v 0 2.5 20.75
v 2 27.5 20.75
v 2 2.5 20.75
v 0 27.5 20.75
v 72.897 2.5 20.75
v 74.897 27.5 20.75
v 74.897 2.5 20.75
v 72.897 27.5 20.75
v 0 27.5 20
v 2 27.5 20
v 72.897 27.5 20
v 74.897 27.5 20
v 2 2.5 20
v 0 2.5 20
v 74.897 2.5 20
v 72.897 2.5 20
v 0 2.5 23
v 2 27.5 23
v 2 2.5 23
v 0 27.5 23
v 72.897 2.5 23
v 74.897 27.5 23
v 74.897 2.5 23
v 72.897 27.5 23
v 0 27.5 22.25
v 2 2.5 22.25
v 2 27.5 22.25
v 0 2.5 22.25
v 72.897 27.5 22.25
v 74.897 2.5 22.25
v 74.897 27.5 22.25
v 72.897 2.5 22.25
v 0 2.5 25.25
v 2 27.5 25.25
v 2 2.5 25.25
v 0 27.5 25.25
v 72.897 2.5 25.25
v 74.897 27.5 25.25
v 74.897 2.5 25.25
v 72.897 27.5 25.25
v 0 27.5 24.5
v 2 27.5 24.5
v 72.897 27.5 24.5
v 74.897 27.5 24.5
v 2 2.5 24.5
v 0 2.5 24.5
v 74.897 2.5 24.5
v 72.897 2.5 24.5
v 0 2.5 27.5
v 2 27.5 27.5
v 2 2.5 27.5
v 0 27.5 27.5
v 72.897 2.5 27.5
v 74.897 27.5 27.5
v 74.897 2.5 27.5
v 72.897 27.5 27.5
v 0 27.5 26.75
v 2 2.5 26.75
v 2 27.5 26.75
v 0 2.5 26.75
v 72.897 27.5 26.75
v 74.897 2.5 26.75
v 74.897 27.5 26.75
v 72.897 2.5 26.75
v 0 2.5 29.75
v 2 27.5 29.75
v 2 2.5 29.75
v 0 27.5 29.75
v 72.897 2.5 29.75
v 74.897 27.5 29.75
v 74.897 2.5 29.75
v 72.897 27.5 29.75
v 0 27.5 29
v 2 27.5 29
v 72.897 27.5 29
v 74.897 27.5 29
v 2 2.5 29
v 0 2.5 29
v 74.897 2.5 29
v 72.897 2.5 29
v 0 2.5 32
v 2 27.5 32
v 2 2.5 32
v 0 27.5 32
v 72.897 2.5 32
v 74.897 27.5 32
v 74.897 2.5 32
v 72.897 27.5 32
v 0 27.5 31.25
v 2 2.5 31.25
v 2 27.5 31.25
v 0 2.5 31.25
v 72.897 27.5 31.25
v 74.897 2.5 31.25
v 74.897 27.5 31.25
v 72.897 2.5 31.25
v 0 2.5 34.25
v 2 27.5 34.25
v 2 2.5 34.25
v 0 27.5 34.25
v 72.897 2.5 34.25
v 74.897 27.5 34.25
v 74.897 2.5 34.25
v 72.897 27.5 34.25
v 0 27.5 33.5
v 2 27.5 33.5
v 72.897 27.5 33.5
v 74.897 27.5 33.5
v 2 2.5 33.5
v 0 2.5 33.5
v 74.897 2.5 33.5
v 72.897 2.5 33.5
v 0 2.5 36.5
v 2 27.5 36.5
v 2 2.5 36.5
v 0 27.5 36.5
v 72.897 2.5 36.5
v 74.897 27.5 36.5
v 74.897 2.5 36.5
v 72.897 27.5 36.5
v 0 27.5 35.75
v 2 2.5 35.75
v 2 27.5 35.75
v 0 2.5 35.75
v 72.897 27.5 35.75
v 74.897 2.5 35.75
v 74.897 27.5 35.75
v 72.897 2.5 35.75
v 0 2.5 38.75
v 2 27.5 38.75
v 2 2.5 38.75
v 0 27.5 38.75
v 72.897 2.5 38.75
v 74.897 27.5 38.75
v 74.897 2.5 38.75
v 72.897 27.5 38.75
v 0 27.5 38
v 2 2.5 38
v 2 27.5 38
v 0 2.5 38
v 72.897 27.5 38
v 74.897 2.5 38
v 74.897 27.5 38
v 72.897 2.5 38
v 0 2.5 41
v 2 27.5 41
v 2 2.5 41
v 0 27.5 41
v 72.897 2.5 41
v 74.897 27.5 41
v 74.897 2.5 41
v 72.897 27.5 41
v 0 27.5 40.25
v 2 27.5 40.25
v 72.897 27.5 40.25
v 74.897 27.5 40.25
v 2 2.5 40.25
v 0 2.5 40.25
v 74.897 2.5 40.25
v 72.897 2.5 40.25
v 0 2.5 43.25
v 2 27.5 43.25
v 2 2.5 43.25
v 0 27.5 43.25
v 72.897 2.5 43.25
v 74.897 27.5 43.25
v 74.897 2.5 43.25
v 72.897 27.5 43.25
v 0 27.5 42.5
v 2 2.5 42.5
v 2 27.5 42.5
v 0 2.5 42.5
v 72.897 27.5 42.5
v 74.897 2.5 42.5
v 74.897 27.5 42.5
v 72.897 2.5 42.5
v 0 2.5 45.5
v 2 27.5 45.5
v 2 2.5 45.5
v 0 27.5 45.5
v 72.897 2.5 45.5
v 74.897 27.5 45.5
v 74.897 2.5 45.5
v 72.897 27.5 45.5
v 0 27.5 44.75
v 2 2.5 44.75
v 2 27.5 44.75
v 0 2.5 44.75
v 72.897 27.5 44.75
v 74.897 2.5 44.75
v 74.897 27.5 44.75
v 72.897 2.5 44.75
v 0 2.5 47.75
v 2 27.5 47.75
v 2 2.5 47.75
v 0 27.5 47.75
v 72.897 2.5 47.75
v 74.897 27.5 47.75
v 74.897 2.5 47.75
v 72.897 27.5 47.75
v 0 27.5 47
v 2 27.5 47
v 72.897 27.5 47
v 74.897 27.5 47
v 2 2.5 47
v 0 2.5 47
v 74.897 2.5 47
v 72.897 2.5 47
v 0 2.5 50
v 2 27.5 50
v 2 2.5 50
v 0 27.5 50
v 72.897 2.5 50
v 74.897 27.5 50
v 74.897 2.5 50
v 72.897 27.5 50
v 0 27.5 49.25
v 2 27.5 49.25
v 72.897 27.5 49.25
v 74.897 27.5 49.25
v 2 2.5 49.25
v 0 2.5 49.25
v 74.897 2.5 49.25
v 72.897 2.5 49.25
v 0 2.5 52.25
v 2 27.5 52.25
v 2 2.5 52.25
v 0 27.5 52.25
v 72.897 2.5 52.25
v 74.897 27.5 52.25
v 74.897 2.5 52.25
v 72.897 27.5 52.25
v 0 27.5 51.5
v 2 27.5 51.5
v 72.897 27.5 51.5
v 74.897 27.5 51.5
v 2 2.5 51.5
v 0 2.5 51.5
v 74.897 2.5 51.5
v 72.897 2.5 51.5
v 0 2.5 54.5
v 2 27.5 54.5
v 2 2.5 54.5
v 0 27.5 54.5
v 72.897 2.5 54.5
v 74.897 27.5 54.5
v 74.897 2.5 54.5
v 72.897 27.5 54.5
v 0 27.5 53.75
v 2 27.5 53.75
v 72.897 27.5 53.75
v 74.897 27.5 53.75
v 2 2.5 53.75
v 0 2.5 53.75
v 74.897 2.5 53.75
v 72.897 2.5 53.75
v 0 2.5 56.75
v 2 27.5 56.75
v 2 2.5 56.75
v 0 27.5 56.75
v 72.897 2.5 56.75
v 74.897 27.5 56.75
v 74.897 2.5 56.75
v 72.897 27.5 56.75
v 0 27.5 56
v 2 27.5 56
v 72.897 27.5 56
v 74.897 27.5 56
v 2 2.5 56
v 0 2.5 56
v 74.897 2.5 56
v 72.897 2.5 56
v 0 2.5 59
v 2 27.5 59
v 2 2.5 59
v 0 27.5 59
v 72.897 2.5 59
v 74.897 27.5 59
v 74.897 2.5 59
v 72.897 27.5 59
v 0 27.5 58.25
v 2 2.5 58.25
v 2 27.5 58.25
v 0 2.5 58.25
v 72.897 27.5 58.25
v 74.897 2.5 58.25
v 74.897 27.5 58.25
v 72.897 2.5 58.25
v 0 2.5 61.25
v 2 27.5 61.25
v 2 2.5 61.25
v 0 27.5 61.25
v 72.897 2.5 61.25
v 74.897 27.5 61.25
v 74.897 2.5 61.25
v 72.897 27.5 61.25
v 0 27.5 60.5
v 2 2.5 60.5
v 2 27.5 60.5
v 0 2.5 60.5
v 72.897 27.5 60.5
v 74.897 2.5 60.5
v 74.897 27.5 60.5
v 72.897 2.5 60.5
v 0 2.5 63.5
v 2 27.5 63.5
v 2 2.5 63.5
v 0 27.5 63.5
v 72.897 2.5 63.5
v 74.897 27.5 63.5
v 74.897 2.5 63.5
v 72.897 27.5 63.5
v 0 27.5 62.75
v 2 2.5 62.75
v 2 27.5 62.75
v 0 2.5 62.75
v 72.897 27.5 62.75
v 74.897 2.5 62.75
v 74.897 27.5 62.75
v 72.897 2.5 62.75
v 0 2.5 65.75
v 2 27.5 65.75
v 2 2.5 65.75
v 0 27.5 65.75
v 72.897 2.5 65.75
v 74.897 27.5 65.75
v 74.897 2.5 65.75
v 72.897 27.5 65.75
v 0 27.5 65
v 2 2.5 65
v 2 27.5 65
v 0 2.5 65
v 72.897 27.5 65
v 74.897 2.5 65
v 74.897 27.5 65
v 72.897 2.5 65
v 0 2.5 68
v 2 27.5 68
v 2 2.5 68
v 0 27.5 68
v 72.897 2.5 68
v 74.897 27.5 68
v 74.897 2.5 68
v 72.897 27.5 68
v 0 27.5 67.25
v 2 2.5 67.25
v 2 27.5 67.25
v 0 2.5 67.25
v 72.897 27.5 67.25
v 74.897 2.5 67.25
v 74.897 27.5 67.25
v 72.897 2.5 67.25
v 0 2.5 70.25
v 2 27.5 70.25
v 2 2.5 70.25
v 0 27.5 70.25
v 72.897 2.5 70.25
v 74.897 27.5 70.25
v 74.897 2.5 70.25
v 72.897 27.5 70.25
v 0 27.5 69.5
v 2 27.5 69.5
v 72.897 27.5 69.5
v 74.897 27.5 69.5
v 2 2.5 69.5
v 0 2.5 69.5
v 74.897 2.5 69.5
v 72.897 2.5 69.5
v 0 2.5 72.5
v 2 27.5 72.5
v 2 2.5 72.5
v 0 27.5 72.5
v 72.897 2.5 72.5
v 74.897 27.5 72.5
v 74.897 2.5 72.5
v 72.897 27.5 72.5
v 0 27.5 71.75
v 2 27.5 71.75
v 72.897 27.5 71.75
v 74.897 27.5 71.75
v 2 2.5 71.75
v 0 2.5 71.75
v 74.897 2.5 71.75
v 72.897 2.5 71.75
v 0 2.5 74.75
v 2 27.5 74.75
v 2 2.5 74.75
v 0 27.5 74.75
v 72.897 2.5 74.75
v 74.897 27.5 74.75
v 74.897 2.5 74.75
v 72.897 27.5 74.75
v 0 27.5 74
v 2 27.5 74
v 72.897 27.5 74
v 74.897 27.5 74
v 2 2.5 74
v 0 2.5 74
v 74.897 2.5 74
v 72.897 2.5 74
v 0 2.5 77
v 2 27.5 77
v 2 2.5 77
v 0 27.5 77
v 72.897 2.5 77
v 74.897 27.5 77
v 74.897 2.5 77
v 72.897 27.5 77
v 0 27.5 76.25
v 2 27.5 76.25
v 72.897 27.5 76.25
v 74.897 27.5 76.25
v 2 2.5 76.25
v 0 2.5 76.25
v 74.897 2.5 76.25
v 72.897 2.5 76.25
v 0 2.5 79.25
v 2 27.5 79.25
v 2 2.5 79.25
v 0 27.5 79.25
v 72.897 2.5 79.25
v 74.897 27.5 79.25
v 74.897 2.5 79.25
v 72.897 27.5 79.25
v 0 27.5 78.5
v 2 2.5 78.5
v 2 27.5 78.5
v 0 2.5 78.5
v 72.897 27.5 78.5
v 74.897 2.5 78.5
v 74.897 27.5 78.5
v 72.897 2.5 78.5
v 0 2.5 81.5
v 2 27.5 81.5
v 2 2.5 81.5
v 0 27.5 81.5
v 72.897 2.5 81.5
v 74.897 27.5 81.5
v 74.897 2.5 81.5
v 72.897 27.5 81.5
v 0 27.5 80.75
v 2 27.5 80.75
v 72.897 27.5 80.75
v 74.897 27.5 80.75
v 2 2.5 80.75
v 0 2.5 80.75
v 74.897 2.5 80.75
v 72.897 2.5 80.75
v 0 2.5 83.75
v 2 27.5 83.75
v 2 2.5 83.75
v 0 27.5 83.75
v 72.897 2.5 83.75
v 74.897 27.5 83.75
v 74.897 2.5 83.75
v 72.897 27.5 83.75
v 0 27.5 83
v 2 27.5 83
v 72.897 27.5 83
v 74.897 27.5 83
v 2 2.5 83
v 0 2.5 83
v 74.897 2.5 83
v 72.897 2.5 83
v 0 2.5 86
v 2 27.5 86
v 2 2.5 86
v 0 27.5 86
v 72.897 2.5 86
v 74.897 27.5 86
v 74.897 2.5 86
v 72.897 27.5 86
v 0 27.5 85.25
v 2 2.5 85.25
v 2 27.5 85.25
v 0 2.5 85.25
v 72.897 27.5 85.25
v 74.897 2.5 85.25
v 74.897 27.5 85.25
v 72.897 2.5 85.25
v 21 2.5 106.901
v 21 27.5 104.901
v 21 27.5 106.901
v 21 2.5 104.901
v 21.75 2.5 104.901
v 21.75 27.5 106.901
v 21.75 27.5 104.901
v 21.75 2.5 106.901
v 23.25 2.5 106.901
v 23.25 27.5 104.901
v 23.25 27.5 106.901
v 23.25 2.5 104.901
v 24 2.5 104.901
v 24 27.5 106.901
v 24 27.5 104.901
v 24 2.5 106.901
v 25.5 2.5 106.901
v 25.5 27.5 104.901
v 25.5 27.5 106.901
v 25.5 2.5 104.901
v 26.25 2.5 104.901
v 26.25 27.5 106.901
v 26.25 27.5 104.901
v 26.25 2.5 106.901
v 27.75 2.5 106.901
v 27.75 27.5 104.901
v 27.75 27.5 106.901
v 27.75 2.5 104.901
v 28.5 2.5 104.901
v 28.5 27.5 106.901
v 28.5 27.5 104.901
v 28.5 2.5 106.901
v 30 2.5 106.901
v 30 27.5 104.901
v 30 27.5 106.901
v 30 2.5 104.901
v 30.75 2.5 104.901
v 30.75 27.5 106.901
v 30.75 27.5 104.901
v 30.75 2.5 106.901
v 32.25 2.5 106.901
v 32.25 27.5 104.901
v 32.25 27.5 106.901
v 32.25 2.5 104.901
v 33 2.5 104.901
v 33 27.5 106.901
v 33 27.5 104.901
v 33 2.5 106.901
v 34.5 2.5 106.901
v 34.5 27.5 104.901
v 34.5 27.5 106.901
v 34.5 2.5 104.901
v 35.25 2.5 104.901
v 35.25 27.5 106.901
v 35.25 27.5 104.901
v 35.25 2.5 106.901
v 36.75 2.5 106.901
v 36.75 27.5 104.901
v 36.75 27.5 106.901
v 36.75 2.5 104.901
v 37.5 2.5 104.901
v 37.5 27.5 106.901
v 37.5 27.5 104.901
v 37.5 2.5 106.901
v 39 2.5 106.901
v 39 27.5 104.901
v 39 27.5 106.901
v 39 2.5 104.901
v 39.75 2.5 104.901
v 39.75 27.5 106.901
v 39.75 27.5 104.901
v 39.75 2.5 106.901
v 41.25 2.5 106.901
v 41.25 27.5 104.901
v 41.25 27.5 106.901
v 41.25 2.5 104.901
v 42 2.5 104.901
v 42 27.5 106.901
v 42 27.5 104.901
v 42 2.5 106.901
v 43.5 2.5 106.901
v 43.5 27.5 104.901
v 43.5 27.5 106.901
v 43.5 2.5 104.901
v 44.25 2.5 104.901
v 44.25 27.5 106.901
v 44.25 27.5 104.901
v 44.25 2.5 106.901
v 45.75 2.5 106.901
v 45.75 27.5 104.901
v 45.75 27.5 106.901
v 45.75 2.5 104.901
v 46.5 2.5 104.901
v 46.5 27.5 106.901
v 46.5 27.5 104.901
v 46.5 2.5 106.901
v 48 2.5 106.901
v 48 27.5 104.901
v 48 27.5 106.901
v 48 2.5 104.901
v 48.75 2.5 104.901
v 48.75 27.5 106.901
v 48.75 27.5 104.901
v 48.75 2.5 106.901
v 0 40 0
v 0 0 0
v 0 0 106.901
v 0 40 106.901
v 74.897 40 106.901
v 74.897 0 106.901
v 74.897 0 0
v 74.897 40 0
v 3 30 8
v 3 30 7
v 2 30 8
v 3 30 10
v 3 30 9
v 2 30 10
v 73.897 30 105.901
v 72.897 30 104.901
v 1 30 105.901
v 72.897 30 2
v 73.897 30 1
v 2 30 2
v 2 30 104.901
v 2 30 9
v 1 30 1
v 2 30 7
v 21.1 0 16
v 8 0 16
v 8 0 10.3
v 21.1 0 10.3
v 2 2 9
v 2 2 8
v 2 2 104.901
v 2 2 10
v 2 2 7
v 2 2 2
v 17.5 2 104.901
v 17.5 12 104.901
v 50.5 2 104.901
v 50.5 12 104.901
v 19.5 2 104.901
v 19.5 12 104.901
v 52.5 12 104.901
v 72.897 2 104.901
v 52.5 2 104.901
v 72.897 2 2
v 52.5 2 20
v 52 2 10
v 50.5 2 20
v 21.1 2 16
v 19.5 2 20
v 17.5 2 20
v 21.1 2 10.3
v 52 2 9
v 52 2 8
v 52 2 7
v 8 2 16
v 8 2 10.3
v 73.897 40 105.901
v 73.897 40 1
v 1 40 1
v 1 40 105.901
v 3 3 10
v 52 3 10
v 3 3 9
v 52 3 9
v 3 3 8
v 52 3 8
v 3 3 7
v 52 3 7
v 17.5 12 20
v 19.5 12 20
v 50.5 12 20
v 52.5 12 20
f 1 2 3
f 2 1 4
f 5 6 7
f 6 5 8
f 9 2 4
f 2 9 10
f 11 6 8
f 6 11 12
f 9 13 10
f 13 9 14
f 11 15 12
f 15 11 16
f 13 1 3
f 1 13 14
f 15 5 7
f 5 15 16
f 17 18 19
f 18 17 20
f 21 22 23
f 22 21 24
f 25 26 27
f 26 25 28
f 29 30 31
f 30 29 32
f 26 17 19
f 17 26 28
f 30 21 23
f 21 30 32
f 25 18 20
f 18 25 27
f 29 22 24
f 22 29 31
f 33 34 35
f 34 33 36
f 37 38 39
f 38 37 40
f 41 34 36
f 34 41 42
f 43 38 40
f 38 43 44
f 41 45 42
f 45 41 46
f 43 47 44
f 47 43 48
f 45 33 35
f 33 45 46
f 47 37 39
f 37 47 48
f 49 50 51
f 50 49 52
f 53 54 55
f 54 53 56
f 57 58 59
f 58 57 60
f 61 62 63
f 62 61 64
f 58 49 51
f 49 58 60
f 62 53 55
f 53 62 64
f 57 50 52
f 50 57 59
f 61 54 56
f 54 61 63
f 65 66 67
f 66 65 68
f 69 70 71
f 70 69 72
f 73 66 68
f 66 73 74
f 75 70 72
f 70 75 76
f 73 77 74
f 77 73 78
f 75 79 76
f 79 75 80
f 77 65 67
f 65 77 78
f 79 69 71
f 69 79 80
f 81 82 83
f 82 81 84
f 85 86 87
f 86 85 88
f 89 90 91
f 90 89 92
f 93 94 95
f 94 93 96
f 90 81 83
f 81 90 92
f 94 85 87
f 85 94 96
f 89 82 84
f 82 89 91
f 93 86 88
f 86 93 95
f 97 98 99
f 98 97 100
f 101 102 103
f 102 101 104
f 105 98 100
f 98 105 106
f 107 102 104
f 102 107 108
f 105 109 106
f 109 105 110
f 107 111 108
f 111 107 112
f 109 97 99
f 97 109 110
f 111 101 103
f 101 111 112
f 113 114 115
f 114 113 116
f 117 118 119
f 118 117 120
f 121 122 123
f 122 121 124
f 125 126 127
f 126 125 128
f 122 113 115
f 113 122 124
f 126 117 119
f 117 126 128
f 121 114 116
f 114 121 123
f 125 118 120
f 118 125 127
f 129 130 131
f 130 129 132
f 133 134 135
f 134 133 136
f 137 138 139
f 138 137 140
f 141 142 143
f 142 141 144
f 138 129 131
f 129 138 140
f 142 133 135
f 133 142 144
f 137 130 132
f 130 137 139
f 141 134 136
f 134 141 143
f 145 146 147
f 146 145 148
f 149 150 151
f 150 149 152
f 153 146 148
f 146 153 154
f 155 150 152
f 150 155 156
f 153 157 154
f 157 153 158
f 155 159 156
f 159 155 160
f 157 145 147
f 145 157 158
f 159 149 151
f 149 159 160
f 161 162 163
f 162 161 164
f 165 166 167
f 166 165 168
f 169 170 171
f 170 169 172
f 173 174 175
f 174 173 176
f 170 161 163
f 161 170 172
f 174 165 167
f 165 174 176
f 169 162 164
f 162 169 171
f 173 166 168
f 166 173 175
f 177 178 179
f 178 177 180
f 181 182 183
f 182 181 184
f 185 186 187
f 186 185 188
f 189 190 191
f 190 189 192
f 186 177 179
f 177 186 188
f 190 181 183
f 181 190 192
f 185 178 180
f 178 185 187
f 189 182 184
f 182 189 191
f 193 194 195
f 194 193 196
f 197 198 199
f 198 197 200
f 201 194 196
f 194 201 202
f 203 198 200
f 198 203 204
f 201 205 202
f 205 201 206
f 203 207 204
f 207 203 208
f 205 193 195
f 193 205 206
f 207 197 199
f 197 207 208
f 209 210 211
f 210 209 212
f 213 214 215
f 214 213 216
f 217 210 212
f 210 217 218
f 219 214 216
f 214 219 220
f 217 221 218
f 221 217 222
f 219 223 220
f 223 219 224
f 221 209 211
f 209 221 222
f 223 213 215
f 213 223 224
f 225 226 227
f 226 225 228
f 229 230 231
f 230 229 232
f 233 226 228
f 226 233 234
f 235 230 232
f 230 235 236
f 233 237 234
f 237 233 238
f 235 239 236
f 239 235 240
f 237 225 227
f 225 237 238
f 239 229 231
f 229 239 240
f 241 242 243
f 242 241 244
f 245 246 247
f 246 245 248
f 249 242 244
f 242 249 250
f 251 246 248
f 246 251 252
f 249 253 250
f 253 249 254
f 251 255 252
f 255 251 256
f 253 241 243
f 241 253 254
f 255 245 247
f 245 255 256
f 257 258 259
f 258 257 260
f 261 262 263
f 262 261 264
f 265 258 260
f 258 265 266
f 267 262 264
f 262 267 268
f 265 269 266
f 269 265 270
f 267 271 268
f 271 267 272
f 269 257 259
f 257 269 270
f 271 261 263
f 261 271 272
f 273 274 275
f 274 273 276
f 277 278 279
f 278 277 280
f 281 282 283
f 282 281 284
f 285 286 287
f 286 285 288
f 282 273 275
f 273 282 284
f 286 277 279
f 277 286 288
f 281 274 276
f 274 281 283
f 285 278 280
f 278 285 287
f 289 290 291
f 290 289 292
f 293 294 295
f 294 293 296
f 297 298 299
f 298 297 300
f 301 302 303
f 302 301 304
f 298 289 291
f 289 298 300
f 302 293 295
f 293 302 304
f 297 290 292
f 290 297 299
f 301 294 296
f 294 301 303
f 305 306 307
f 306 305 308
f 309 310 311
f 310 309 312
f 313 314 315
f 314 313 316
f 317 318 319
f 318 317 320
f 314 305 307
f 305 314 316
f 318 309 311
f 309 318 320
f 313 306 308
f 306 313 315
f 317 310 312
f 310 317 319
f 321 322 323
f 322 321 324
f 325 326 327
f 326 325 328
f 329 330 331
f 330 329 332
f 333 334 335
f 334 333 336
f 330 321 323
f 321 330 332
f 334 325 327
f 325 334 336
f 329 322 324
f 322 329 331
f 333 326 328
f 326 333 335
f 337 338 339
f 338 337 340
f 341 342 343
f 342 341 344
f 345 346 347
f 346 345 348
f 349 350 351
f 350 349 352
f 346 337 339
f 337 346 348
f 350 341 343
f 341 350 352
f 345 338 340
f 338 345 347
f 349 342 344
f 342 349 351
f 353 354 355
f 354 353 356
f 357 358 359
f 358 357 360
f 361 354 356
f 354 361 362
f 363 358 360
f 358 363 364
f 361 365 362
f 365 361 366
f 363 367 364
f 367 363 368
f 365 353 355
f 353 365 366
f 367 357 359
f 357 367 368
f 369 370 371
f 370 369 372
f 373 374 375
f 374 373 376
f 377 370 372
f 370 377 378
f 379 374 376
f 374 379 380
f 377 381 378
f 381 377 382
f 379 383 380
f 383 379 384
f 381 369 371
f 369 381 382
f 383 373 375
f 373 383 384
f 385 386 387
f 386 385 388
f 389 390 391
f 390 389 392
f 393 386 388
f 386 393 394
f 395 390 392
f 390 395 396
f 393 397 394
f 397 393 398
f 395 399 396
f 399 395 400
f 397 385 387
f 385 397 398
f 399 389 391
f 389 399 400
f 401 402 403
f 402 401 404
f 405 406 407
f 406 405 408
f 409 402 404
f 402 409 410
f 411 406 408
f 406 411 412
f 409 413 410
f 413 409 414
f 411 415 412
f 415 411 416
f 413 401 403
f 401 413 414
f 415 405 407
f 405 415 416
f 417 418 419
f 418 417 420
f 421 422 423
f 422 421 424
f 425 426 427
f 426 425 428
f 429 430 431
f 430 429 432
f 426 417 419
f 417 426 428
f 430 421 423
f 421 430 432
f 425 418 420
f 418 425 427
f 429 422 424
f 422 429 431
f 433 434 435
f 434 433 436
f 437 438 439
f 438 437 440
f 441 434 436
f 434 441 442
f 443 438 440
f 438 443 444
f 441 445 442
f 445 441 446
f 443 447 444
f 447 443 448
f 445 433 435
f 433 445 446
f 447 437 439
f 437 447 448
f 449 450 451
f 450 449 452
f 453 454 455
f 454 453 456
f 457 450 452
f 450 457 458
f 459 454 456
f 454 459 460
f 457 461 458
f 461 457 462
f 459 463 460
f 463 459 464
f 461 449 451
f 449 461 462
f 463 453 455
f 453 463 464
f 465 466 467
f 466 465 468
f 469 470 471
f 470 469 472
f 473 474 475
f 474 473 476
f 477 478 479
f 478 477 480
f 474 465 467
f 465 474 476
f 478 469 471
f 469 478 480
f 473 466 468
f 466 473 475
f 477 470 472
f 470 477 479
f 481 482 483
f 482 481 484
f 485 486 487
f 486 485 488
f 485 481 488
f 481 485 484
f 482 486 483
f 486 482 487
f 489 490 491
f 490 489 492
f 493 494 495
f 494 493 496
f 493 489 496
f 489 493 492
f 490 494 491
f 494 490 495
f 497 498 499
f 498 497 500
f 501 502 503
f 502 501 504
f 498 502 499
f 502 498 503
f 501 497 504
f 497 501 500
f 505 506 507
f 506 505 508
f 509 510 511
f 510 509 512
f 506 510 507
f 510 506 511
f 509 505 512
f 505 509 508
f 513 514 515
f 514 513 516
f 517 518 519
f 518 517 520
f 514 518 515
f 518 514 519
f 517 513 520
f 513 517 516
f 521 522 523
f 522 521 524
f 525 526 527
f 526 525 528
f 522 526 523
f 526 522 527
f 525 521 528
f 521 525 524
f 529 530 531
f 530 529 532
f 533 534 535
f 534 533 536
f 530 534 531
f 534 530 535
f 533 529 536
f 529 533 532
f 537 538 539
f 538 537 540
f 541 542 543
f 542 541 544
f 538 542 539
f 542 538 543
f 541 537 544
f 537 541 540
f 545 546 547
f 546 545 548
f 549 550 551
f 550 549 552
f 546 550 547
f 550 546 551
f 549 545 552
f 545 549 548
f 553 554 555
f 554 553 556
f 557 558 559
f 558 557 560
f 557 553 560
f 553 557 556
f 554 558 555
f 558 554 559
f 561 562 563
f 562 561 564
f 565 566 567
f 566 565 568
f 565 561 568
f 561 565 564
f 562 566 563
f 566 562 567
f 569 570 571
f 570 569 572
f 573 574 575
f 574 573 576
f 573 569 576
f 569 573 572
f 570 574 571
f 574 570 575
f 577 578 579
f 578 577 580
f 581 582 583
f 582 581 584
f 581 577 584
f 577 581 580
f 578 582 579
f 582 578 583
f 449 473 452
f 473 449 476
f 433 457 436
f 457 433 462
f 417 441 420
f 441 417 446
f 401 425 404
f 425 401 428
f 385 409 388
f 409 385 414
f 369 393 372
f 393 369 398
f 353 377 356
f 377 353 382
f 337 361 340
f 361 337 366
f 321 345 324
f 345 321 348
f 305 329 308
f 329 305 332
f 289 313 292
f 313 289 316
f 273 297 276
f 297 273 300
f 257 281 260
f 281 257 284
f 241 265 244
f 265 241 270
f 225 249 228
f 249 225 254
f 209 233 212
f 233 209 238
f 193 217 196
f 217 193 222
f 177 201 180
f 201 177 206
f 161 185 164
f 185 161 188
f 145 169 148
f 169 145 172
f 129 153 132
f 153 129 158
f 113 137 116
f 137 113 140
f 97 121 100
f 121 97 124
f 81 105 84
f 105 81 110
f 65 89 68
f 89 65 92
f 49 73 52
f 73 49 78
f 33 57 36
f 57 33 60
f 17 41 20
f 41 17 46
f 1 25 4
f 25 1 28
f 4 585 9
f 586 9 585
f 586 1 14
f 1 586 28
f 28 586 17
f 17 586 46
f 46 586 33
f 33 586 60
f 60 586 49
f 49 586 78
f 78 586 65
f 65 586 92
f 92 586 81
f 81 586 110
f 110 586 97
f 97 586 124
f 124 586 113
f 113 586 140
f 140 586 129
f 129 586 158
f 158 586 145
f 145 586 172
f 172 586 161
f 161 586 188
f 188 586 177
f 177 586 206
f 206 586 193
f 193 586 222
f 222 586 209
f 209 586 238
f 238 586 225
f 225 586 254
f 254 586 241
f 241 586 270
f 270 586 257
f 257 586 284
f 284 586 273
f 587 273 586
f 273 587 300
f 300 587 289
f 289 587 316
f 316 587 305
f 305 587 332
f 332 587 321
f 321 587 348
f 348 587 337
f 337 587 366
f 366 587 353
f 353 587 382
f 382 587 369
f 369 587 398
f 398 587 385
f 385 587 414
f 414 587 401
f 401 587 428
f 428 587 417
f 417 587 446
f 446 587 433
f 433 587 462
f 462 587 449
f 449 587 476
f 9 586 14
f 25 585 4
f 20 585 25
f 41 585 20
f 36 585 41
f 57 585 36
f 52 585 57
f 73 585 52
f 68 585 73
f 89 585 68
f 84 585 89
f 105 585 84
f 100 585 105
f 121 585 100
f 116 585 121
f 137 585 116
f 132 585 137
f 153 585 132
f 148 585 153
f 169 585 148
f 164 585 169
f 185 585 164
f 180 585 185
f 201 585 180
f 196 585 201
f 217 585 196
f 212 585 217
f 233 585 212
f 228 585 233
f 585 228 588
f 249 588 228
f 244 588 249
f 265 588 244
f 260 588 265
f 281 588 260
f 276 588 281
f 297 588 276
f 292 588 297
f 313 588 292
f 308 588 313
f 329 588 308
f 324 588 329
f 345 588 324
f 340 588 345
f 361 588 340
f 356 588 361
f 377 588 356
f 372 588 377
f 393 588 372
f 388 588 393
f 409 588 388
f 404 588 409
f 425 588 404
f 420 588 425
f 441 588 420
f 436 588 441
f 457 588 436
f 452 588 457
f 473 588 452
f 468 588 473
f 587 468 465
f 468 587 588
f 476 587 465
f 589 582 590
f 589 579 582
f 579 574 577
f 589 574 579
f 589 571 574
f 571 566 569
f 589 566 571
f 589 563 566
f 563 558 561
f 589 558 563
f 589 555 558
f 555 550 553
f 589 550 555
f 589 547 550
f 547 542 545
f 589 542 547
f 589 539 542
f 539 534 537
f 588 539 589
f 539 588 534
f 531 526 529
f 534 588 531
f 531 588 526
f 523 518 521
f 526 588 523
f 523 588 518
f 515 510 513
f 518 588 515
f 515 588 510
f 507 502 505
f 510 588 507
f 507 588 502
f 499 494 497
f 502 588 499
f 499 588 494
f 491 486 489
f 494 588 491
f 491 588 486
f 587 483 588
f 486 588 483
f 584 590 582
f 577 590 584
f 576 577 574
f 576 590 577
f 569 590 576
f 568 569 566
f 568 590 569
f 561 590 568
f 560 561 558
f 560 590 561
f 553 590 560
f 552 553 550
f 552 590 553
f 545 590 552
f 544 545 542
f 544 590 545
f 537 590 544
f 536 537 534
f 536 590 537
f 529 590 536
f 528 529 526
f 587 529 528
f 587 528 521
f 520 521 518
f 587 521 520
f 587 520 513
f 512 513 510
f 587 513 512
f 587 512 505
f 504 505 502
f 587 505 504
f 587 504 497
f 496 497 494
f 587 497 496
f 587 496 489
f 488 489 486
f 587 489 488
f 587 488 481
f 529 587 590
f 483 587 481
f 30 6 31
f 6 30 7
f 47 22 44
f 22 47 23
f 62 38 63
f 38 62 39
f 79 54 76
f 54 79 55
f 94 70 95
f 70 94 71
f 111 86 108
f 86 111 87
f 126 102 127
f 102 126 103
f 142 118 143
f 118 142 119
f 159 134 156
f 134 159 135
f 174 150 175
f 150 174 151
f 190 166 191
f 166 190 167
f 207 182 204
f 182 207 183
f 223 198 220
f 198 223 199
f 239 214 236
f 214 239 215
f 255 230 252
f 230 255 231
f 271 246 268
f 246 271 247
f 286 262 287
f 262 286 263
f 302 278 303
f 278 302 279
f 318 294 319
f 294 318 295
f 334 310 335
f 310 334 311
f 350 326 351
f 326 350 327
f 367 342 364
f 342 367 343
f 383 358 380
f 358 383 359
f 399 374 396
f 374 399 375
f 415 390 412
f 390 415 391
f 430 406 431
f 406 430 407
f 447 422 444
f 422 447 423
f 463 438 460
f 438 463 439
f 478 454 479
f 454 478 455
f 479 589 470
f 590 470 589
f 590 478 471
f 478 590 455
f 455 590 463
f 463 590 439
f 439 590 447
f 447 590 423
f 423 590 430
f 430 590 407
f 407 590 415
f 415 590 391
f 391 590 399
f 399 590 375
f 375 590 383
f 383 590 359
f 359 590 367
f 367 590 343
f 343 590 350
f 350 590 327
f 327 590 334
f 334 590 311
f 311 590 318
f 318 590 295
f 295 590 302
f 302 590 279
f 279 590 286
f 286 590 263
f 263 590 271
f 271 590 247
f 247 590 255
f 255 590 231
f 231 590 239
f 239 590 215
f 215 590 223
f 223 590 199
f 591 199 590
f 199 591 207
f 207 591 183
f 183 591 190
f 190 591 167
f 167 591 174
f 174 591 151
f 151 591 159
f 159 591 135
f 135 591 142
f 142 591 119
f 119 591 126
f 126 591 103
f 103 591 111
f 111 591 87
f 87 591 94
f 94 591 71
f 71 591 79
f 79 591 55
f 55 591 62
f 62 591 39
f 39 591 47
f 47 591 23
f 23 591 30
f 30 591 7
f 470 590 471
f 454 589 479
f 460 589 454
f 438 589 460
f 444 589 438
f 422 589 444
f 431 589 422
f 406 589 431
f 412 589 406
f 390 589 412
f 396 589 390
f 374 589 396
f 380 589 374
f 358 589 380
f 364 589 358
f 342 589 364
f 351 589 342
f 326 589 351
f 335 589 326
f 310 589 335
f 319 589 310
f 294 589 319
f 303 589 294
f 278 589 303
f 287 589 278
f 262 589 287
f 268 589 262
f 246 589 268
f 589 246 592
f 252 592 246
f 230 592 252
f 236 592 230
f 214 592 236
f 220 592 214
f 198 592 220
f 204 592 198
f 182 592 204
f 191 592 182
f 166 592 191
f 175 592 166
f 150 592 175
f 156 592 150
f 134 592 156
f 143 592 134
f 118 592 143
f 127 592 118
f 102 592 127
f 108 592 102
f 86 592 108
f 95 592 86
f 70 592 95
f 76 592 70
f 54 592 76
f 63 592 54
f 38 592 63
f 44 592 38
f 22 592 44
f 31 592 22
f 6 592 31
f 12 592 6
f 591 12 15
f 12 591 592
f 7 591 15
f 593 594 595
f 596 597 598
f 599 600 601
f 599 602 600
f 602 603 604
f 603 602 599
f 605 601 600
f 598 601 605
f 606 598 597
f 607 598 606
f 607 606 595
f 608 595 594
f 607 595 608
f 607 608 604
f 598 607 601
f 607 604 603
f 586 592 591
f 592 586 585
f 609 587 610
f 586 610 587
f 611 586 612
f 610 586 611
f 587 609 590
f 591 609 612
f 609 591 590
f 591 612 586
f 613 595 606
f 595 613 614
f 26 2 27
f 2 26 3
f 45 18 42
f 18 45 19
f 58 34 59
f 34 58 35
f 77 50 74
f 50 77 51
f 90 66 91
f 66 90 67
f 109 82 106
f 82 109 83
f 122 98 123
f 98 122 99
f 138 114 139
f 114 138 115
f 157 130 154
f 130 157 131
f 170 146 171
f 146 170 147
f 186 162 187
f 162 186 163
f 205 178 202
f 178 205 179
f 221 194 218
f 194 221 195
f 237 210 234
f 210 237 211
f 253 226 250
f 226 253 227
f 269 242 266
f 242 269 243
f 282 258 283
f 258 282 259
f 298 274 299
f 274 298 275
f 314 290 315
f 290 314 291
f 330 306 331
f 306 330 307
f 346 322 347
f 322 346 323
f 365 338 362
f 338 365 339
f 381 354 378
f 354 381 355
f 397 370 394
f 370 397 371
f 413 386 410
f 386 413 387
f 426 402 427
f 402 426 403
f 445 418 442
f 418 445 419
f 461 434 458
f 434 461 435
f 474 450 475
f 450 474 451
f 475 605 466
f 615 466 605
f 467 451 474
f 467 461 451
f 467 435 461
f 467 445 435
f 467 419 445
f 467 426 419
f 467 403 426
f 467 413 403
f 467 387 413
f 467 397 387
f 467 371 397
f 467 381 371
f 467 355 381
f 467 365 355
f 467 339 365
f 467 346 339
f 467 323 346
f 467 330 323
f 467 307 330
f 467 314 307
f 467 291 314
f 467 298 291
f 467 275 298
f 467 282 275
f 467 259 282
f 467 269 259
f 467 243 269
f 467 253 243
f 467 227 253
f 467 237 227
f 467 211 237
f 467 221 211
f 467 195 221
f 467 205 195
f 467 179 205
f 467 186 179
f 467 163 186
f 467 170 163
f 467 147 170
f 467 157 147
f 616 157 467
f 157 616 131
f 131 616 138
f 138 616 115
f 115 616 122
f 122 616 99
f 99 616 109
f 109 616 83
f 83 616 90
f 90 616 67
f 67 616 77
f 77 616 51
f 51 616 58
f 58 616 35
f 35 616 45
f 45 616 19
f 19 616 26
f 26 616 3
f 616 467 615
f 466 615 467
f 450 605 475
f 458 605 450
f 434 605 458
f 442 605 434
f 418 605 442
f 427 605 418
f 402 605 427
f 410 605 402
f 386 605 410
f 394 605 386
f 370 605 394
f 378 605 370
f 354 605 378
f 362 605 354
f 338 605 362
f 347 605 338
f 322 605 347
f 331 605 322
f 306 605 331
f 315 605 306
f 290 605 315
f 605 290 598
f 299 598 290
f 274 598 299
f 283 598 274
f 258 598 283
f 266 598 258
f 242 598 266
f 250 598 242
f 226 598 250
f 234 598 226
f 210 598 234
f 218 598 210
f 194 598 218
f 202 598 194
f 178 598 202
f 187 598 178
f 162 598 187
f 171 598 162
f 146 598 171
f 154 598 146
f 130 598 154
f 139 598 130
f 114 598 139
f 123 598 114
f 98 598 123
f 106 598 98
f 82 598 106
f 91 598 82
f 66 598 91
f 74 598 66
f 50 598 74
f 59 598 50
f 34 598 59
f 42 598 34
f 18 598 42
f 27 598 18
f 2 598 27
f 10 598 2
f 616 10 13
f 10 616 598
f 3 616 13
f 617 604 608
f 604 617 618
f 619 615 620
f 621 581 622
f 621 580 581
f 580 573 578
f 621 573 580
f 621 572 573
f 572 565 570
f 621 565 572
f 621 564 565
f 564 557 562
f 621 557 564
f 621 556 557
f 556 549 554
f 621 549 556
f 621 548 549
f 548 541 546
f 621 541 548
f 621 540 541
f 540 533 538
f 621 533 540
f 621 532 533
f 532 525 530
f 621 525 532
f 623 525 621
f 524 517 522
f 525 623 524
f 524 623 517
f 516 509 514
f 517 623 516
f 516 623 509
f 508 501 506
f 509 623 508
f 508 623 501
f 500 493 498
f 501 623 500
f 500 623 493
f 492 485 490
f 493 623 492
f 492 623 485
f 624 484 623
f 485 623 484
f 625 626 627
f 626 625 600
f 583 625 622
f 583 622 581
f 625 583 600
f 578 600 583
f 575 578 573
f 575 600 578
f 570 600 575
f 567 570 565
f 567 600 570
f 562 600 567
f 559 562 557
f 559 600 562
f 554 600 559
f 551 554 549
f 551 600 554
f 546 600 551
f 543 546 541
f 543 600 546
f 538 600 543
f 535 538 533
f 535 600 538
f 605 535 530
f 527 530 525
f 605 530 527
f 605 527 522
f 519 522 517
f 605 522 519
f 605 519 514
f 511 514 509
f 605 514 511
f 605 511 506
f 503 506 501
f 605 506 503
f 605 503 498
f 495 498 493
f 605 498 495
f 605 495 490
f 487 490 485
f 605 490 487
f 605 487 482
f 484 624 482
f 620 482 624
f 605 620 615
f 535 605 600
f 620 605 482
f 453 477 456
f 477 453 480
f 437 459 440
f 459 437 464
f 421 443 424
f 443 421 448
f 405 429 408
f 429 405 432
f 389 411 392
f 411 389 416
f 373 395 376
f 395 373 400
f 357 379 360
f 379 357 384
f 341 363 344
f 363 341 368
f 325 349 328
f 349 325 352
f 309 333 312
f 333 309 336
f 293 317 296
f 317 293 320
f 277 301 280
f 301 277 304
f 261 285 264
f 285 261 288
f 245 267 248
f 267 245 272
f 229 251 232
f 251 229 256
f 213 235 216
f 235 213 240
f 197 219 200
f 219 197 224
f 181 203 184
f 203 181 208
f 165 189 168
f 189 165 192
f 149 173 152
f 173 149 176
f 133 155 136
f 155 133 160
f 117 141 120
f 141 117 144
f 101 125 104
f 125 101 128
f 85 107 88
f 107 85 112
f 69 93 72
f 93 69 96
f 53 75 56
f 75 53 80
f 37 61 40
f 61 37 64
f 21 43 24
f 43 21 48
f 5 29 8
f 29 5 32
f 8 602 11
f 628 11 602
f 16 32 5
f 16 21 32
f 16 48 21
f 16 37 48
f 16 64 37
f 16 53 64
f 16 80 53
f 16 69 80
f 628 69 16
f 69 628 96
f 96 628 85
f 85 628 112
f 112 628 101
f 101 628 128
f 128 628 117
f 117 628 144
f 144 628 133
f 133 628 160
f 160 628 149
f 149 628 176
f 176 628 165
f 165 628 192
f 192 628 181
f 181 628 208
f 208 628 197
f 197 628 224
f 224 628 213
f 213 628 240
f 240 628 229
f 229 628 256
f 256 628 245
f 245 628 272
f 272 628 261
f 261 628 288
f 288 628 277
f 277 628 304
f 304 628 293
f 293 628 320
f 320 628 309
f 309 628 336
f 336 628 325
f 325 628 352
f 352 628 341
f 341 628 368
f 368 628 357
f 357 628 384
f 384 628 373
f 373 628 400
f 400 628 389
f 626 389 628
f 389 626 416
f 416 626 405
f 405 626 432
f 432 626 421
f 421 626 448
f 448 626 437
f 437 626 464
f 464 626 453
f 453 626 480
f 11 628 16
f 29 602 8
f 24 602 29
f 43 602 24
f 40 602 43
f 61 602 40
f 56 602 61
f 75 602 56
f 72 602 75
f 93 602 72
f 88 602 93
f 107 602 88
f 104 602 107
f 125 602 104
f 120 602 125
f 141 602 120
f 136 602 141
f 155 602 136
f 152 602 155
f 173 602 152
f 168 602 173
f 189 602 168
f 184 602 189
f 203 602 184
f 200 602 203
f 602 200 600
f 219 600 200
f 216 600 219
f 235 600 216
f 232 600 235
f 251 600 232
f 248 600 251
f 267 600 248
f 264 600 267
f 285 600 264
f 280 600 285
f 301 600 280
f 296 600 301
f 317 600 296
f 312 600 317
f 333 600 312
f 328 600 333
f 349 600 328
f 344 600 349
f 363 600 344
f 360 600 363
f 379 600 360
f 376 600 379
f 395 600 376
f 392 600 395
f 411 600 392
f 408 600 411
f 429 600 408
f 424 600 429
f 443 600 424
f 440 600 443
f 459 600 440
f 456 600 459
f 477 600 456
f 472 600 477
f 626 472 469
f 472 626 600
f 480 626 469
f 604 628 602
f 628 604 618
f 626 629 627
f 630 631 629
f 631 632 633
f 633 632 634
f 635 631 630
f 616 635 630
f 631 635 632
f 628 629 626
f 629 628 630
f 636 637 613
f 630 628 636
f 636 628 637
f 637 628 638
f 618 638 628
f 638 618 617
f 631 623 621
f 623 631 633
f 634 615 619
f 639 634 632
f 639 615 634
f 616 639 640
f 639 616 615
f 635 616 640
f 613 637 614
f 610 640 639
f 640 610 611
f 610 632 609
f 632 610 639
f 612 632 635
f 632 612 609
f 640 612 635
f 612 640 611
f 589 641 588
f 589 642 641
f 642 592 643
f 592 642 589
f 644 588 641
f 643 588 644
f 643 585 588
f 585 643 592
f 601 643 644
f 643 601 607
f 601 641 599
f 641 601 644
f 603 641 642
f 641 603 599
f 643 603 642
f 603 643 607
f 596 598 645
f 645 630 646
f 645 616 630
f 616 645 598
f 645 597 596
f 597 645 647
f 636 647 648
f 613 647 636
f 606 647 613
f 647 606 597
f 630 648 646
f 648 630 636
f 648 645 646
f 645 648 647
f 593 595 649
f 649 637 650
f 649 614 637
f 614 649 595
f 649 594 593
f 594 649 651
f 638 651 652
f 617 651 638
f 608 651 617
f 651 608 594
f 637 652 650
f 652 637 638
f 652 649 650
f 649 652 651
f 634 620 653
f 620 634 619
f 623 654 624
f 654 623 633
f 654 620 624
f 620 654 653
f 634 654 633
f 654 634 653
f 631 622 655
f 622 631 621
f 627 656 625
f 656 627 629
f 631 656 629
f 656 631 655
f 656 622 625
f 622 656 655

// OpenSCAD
// EcoSense@clock: box, part2 (back)

//color("white")

box_thicknes = 2;
panel_width = 64.897;
panel_height = 96.901;
mount_holes_width = 58.547;
mount_holes_height = 90.170;
mount_hole_diameter = 2.5;
mount_hole_z = 8;

vent_hole_height = 0.75;
vent_hole_width = 25;
vent_hole_pos_h = 20;
vent_hole_count = 25;

box_deep = 30;
box2panel_size = box_thicknes + 3;
box_width = panel_width + 2 * box2panel_size;
box_height = panel_height + 2 * box2panel_size;

mount_pos_w = (panel_width - mount_holes_width) / 2;
mount_pos_h = (panel_height - mount_holes_height) / 2;
echo(mount_pos_w=mount_pos_w);

translate([0,0,0]) {
    difference() {
        
        cube([box_width, box_deep, box_height]);
       
        translate([box_thicknes,box_thicknes,box_thicknes])
            cube([(box_width-box_thicknes*2), box_deep, (box_height-box_thicknes*2)]);
        
    // vent holes
    pos_h = box_height - vent_hole_pos_h;
   echo(pos_h=pos_h);

   echo(s=box_height-((vent_hole_height + vent_hole_height*2)*vent_hole_count));
        
    for(h = [
        vent_hole_pos_h:
        (vent_hole_height + vent_hole_height*2):
        box_height - vent_hole_pos_h
        ]) {
        
        echo(h=h);
        
        translate([
                -1
            ,
                box_deep/2 -            vent_hole_width/2
            ,
                h
            ]) 
                cube([box_width*2, vent_hole_width, vent_hole_height]);
        echo(pos_h=pos_h);
    }
    
    for(h = [
        vent_hole_pos_h+box_thicknes:
        (vent_hole_height + vent_hole_height*2):
        box_width - vent_hole_pos_h-4
        ]) {
        
        translate([
                h-1
            ,
                box_deep/2 -            vent_hole_width/2
            ,
                box_height-box_thicknes*2
            ]) 
                cube([vent_hole_height, vent_hole_width, box_thicknes*3]);
    }
    
        // usb
    translate([
        6 + box_thicknes,
        -1,
        10.3
        ]) {
        cube([13.1, box_thicknes*3, 5.7]);
        }
    
    }
}

difference() {
    translate([0,box_deep,0]) {
        cube([box_width, 10, box_height]);
    }
    translate([box_thicknes/2,box_deep-1,box_thicknes/2]) {
        cube([box_width-box_thicknes, 12, box_height-box_thicknes]);
    }
}

translate([
box_thicknes+vent_hole_pos_h - box_thicknes*2-.5,
box_thicknes,
vent_hole_pos_h
]) {
cube([box_thicknes, box_deep/3, box_height - vent_hole_pos_h]);

}

translate([
box_thicknes+vent_hole_pos_h - box_thicknes*2 + 30+ box_thicknes + 0.5,
box_thicknes,
vent_hole_pos_h
]) {
cube([box_thicknes, box_deep/3, box_height - vent_hole_pos_h]);

}

// mb102 rails
translate([
box_thicknes,
box_thicknes,
box_thicknes + 7// 9.3 - 1.3 - box_thicknes/2
]) {
cube([1, 28, 1]);
cube([50, 1, 1]);
}

translate([
box_thicknes,
box_thicknes,
box_thicknes + 5  //9.3 - 1.3 - box_thicknes/2 - 1.2 - box_thicknes/2
]) {
cube([1, 28, 1]);
cube([50, 1, 1]);
}


echo(version=version());
